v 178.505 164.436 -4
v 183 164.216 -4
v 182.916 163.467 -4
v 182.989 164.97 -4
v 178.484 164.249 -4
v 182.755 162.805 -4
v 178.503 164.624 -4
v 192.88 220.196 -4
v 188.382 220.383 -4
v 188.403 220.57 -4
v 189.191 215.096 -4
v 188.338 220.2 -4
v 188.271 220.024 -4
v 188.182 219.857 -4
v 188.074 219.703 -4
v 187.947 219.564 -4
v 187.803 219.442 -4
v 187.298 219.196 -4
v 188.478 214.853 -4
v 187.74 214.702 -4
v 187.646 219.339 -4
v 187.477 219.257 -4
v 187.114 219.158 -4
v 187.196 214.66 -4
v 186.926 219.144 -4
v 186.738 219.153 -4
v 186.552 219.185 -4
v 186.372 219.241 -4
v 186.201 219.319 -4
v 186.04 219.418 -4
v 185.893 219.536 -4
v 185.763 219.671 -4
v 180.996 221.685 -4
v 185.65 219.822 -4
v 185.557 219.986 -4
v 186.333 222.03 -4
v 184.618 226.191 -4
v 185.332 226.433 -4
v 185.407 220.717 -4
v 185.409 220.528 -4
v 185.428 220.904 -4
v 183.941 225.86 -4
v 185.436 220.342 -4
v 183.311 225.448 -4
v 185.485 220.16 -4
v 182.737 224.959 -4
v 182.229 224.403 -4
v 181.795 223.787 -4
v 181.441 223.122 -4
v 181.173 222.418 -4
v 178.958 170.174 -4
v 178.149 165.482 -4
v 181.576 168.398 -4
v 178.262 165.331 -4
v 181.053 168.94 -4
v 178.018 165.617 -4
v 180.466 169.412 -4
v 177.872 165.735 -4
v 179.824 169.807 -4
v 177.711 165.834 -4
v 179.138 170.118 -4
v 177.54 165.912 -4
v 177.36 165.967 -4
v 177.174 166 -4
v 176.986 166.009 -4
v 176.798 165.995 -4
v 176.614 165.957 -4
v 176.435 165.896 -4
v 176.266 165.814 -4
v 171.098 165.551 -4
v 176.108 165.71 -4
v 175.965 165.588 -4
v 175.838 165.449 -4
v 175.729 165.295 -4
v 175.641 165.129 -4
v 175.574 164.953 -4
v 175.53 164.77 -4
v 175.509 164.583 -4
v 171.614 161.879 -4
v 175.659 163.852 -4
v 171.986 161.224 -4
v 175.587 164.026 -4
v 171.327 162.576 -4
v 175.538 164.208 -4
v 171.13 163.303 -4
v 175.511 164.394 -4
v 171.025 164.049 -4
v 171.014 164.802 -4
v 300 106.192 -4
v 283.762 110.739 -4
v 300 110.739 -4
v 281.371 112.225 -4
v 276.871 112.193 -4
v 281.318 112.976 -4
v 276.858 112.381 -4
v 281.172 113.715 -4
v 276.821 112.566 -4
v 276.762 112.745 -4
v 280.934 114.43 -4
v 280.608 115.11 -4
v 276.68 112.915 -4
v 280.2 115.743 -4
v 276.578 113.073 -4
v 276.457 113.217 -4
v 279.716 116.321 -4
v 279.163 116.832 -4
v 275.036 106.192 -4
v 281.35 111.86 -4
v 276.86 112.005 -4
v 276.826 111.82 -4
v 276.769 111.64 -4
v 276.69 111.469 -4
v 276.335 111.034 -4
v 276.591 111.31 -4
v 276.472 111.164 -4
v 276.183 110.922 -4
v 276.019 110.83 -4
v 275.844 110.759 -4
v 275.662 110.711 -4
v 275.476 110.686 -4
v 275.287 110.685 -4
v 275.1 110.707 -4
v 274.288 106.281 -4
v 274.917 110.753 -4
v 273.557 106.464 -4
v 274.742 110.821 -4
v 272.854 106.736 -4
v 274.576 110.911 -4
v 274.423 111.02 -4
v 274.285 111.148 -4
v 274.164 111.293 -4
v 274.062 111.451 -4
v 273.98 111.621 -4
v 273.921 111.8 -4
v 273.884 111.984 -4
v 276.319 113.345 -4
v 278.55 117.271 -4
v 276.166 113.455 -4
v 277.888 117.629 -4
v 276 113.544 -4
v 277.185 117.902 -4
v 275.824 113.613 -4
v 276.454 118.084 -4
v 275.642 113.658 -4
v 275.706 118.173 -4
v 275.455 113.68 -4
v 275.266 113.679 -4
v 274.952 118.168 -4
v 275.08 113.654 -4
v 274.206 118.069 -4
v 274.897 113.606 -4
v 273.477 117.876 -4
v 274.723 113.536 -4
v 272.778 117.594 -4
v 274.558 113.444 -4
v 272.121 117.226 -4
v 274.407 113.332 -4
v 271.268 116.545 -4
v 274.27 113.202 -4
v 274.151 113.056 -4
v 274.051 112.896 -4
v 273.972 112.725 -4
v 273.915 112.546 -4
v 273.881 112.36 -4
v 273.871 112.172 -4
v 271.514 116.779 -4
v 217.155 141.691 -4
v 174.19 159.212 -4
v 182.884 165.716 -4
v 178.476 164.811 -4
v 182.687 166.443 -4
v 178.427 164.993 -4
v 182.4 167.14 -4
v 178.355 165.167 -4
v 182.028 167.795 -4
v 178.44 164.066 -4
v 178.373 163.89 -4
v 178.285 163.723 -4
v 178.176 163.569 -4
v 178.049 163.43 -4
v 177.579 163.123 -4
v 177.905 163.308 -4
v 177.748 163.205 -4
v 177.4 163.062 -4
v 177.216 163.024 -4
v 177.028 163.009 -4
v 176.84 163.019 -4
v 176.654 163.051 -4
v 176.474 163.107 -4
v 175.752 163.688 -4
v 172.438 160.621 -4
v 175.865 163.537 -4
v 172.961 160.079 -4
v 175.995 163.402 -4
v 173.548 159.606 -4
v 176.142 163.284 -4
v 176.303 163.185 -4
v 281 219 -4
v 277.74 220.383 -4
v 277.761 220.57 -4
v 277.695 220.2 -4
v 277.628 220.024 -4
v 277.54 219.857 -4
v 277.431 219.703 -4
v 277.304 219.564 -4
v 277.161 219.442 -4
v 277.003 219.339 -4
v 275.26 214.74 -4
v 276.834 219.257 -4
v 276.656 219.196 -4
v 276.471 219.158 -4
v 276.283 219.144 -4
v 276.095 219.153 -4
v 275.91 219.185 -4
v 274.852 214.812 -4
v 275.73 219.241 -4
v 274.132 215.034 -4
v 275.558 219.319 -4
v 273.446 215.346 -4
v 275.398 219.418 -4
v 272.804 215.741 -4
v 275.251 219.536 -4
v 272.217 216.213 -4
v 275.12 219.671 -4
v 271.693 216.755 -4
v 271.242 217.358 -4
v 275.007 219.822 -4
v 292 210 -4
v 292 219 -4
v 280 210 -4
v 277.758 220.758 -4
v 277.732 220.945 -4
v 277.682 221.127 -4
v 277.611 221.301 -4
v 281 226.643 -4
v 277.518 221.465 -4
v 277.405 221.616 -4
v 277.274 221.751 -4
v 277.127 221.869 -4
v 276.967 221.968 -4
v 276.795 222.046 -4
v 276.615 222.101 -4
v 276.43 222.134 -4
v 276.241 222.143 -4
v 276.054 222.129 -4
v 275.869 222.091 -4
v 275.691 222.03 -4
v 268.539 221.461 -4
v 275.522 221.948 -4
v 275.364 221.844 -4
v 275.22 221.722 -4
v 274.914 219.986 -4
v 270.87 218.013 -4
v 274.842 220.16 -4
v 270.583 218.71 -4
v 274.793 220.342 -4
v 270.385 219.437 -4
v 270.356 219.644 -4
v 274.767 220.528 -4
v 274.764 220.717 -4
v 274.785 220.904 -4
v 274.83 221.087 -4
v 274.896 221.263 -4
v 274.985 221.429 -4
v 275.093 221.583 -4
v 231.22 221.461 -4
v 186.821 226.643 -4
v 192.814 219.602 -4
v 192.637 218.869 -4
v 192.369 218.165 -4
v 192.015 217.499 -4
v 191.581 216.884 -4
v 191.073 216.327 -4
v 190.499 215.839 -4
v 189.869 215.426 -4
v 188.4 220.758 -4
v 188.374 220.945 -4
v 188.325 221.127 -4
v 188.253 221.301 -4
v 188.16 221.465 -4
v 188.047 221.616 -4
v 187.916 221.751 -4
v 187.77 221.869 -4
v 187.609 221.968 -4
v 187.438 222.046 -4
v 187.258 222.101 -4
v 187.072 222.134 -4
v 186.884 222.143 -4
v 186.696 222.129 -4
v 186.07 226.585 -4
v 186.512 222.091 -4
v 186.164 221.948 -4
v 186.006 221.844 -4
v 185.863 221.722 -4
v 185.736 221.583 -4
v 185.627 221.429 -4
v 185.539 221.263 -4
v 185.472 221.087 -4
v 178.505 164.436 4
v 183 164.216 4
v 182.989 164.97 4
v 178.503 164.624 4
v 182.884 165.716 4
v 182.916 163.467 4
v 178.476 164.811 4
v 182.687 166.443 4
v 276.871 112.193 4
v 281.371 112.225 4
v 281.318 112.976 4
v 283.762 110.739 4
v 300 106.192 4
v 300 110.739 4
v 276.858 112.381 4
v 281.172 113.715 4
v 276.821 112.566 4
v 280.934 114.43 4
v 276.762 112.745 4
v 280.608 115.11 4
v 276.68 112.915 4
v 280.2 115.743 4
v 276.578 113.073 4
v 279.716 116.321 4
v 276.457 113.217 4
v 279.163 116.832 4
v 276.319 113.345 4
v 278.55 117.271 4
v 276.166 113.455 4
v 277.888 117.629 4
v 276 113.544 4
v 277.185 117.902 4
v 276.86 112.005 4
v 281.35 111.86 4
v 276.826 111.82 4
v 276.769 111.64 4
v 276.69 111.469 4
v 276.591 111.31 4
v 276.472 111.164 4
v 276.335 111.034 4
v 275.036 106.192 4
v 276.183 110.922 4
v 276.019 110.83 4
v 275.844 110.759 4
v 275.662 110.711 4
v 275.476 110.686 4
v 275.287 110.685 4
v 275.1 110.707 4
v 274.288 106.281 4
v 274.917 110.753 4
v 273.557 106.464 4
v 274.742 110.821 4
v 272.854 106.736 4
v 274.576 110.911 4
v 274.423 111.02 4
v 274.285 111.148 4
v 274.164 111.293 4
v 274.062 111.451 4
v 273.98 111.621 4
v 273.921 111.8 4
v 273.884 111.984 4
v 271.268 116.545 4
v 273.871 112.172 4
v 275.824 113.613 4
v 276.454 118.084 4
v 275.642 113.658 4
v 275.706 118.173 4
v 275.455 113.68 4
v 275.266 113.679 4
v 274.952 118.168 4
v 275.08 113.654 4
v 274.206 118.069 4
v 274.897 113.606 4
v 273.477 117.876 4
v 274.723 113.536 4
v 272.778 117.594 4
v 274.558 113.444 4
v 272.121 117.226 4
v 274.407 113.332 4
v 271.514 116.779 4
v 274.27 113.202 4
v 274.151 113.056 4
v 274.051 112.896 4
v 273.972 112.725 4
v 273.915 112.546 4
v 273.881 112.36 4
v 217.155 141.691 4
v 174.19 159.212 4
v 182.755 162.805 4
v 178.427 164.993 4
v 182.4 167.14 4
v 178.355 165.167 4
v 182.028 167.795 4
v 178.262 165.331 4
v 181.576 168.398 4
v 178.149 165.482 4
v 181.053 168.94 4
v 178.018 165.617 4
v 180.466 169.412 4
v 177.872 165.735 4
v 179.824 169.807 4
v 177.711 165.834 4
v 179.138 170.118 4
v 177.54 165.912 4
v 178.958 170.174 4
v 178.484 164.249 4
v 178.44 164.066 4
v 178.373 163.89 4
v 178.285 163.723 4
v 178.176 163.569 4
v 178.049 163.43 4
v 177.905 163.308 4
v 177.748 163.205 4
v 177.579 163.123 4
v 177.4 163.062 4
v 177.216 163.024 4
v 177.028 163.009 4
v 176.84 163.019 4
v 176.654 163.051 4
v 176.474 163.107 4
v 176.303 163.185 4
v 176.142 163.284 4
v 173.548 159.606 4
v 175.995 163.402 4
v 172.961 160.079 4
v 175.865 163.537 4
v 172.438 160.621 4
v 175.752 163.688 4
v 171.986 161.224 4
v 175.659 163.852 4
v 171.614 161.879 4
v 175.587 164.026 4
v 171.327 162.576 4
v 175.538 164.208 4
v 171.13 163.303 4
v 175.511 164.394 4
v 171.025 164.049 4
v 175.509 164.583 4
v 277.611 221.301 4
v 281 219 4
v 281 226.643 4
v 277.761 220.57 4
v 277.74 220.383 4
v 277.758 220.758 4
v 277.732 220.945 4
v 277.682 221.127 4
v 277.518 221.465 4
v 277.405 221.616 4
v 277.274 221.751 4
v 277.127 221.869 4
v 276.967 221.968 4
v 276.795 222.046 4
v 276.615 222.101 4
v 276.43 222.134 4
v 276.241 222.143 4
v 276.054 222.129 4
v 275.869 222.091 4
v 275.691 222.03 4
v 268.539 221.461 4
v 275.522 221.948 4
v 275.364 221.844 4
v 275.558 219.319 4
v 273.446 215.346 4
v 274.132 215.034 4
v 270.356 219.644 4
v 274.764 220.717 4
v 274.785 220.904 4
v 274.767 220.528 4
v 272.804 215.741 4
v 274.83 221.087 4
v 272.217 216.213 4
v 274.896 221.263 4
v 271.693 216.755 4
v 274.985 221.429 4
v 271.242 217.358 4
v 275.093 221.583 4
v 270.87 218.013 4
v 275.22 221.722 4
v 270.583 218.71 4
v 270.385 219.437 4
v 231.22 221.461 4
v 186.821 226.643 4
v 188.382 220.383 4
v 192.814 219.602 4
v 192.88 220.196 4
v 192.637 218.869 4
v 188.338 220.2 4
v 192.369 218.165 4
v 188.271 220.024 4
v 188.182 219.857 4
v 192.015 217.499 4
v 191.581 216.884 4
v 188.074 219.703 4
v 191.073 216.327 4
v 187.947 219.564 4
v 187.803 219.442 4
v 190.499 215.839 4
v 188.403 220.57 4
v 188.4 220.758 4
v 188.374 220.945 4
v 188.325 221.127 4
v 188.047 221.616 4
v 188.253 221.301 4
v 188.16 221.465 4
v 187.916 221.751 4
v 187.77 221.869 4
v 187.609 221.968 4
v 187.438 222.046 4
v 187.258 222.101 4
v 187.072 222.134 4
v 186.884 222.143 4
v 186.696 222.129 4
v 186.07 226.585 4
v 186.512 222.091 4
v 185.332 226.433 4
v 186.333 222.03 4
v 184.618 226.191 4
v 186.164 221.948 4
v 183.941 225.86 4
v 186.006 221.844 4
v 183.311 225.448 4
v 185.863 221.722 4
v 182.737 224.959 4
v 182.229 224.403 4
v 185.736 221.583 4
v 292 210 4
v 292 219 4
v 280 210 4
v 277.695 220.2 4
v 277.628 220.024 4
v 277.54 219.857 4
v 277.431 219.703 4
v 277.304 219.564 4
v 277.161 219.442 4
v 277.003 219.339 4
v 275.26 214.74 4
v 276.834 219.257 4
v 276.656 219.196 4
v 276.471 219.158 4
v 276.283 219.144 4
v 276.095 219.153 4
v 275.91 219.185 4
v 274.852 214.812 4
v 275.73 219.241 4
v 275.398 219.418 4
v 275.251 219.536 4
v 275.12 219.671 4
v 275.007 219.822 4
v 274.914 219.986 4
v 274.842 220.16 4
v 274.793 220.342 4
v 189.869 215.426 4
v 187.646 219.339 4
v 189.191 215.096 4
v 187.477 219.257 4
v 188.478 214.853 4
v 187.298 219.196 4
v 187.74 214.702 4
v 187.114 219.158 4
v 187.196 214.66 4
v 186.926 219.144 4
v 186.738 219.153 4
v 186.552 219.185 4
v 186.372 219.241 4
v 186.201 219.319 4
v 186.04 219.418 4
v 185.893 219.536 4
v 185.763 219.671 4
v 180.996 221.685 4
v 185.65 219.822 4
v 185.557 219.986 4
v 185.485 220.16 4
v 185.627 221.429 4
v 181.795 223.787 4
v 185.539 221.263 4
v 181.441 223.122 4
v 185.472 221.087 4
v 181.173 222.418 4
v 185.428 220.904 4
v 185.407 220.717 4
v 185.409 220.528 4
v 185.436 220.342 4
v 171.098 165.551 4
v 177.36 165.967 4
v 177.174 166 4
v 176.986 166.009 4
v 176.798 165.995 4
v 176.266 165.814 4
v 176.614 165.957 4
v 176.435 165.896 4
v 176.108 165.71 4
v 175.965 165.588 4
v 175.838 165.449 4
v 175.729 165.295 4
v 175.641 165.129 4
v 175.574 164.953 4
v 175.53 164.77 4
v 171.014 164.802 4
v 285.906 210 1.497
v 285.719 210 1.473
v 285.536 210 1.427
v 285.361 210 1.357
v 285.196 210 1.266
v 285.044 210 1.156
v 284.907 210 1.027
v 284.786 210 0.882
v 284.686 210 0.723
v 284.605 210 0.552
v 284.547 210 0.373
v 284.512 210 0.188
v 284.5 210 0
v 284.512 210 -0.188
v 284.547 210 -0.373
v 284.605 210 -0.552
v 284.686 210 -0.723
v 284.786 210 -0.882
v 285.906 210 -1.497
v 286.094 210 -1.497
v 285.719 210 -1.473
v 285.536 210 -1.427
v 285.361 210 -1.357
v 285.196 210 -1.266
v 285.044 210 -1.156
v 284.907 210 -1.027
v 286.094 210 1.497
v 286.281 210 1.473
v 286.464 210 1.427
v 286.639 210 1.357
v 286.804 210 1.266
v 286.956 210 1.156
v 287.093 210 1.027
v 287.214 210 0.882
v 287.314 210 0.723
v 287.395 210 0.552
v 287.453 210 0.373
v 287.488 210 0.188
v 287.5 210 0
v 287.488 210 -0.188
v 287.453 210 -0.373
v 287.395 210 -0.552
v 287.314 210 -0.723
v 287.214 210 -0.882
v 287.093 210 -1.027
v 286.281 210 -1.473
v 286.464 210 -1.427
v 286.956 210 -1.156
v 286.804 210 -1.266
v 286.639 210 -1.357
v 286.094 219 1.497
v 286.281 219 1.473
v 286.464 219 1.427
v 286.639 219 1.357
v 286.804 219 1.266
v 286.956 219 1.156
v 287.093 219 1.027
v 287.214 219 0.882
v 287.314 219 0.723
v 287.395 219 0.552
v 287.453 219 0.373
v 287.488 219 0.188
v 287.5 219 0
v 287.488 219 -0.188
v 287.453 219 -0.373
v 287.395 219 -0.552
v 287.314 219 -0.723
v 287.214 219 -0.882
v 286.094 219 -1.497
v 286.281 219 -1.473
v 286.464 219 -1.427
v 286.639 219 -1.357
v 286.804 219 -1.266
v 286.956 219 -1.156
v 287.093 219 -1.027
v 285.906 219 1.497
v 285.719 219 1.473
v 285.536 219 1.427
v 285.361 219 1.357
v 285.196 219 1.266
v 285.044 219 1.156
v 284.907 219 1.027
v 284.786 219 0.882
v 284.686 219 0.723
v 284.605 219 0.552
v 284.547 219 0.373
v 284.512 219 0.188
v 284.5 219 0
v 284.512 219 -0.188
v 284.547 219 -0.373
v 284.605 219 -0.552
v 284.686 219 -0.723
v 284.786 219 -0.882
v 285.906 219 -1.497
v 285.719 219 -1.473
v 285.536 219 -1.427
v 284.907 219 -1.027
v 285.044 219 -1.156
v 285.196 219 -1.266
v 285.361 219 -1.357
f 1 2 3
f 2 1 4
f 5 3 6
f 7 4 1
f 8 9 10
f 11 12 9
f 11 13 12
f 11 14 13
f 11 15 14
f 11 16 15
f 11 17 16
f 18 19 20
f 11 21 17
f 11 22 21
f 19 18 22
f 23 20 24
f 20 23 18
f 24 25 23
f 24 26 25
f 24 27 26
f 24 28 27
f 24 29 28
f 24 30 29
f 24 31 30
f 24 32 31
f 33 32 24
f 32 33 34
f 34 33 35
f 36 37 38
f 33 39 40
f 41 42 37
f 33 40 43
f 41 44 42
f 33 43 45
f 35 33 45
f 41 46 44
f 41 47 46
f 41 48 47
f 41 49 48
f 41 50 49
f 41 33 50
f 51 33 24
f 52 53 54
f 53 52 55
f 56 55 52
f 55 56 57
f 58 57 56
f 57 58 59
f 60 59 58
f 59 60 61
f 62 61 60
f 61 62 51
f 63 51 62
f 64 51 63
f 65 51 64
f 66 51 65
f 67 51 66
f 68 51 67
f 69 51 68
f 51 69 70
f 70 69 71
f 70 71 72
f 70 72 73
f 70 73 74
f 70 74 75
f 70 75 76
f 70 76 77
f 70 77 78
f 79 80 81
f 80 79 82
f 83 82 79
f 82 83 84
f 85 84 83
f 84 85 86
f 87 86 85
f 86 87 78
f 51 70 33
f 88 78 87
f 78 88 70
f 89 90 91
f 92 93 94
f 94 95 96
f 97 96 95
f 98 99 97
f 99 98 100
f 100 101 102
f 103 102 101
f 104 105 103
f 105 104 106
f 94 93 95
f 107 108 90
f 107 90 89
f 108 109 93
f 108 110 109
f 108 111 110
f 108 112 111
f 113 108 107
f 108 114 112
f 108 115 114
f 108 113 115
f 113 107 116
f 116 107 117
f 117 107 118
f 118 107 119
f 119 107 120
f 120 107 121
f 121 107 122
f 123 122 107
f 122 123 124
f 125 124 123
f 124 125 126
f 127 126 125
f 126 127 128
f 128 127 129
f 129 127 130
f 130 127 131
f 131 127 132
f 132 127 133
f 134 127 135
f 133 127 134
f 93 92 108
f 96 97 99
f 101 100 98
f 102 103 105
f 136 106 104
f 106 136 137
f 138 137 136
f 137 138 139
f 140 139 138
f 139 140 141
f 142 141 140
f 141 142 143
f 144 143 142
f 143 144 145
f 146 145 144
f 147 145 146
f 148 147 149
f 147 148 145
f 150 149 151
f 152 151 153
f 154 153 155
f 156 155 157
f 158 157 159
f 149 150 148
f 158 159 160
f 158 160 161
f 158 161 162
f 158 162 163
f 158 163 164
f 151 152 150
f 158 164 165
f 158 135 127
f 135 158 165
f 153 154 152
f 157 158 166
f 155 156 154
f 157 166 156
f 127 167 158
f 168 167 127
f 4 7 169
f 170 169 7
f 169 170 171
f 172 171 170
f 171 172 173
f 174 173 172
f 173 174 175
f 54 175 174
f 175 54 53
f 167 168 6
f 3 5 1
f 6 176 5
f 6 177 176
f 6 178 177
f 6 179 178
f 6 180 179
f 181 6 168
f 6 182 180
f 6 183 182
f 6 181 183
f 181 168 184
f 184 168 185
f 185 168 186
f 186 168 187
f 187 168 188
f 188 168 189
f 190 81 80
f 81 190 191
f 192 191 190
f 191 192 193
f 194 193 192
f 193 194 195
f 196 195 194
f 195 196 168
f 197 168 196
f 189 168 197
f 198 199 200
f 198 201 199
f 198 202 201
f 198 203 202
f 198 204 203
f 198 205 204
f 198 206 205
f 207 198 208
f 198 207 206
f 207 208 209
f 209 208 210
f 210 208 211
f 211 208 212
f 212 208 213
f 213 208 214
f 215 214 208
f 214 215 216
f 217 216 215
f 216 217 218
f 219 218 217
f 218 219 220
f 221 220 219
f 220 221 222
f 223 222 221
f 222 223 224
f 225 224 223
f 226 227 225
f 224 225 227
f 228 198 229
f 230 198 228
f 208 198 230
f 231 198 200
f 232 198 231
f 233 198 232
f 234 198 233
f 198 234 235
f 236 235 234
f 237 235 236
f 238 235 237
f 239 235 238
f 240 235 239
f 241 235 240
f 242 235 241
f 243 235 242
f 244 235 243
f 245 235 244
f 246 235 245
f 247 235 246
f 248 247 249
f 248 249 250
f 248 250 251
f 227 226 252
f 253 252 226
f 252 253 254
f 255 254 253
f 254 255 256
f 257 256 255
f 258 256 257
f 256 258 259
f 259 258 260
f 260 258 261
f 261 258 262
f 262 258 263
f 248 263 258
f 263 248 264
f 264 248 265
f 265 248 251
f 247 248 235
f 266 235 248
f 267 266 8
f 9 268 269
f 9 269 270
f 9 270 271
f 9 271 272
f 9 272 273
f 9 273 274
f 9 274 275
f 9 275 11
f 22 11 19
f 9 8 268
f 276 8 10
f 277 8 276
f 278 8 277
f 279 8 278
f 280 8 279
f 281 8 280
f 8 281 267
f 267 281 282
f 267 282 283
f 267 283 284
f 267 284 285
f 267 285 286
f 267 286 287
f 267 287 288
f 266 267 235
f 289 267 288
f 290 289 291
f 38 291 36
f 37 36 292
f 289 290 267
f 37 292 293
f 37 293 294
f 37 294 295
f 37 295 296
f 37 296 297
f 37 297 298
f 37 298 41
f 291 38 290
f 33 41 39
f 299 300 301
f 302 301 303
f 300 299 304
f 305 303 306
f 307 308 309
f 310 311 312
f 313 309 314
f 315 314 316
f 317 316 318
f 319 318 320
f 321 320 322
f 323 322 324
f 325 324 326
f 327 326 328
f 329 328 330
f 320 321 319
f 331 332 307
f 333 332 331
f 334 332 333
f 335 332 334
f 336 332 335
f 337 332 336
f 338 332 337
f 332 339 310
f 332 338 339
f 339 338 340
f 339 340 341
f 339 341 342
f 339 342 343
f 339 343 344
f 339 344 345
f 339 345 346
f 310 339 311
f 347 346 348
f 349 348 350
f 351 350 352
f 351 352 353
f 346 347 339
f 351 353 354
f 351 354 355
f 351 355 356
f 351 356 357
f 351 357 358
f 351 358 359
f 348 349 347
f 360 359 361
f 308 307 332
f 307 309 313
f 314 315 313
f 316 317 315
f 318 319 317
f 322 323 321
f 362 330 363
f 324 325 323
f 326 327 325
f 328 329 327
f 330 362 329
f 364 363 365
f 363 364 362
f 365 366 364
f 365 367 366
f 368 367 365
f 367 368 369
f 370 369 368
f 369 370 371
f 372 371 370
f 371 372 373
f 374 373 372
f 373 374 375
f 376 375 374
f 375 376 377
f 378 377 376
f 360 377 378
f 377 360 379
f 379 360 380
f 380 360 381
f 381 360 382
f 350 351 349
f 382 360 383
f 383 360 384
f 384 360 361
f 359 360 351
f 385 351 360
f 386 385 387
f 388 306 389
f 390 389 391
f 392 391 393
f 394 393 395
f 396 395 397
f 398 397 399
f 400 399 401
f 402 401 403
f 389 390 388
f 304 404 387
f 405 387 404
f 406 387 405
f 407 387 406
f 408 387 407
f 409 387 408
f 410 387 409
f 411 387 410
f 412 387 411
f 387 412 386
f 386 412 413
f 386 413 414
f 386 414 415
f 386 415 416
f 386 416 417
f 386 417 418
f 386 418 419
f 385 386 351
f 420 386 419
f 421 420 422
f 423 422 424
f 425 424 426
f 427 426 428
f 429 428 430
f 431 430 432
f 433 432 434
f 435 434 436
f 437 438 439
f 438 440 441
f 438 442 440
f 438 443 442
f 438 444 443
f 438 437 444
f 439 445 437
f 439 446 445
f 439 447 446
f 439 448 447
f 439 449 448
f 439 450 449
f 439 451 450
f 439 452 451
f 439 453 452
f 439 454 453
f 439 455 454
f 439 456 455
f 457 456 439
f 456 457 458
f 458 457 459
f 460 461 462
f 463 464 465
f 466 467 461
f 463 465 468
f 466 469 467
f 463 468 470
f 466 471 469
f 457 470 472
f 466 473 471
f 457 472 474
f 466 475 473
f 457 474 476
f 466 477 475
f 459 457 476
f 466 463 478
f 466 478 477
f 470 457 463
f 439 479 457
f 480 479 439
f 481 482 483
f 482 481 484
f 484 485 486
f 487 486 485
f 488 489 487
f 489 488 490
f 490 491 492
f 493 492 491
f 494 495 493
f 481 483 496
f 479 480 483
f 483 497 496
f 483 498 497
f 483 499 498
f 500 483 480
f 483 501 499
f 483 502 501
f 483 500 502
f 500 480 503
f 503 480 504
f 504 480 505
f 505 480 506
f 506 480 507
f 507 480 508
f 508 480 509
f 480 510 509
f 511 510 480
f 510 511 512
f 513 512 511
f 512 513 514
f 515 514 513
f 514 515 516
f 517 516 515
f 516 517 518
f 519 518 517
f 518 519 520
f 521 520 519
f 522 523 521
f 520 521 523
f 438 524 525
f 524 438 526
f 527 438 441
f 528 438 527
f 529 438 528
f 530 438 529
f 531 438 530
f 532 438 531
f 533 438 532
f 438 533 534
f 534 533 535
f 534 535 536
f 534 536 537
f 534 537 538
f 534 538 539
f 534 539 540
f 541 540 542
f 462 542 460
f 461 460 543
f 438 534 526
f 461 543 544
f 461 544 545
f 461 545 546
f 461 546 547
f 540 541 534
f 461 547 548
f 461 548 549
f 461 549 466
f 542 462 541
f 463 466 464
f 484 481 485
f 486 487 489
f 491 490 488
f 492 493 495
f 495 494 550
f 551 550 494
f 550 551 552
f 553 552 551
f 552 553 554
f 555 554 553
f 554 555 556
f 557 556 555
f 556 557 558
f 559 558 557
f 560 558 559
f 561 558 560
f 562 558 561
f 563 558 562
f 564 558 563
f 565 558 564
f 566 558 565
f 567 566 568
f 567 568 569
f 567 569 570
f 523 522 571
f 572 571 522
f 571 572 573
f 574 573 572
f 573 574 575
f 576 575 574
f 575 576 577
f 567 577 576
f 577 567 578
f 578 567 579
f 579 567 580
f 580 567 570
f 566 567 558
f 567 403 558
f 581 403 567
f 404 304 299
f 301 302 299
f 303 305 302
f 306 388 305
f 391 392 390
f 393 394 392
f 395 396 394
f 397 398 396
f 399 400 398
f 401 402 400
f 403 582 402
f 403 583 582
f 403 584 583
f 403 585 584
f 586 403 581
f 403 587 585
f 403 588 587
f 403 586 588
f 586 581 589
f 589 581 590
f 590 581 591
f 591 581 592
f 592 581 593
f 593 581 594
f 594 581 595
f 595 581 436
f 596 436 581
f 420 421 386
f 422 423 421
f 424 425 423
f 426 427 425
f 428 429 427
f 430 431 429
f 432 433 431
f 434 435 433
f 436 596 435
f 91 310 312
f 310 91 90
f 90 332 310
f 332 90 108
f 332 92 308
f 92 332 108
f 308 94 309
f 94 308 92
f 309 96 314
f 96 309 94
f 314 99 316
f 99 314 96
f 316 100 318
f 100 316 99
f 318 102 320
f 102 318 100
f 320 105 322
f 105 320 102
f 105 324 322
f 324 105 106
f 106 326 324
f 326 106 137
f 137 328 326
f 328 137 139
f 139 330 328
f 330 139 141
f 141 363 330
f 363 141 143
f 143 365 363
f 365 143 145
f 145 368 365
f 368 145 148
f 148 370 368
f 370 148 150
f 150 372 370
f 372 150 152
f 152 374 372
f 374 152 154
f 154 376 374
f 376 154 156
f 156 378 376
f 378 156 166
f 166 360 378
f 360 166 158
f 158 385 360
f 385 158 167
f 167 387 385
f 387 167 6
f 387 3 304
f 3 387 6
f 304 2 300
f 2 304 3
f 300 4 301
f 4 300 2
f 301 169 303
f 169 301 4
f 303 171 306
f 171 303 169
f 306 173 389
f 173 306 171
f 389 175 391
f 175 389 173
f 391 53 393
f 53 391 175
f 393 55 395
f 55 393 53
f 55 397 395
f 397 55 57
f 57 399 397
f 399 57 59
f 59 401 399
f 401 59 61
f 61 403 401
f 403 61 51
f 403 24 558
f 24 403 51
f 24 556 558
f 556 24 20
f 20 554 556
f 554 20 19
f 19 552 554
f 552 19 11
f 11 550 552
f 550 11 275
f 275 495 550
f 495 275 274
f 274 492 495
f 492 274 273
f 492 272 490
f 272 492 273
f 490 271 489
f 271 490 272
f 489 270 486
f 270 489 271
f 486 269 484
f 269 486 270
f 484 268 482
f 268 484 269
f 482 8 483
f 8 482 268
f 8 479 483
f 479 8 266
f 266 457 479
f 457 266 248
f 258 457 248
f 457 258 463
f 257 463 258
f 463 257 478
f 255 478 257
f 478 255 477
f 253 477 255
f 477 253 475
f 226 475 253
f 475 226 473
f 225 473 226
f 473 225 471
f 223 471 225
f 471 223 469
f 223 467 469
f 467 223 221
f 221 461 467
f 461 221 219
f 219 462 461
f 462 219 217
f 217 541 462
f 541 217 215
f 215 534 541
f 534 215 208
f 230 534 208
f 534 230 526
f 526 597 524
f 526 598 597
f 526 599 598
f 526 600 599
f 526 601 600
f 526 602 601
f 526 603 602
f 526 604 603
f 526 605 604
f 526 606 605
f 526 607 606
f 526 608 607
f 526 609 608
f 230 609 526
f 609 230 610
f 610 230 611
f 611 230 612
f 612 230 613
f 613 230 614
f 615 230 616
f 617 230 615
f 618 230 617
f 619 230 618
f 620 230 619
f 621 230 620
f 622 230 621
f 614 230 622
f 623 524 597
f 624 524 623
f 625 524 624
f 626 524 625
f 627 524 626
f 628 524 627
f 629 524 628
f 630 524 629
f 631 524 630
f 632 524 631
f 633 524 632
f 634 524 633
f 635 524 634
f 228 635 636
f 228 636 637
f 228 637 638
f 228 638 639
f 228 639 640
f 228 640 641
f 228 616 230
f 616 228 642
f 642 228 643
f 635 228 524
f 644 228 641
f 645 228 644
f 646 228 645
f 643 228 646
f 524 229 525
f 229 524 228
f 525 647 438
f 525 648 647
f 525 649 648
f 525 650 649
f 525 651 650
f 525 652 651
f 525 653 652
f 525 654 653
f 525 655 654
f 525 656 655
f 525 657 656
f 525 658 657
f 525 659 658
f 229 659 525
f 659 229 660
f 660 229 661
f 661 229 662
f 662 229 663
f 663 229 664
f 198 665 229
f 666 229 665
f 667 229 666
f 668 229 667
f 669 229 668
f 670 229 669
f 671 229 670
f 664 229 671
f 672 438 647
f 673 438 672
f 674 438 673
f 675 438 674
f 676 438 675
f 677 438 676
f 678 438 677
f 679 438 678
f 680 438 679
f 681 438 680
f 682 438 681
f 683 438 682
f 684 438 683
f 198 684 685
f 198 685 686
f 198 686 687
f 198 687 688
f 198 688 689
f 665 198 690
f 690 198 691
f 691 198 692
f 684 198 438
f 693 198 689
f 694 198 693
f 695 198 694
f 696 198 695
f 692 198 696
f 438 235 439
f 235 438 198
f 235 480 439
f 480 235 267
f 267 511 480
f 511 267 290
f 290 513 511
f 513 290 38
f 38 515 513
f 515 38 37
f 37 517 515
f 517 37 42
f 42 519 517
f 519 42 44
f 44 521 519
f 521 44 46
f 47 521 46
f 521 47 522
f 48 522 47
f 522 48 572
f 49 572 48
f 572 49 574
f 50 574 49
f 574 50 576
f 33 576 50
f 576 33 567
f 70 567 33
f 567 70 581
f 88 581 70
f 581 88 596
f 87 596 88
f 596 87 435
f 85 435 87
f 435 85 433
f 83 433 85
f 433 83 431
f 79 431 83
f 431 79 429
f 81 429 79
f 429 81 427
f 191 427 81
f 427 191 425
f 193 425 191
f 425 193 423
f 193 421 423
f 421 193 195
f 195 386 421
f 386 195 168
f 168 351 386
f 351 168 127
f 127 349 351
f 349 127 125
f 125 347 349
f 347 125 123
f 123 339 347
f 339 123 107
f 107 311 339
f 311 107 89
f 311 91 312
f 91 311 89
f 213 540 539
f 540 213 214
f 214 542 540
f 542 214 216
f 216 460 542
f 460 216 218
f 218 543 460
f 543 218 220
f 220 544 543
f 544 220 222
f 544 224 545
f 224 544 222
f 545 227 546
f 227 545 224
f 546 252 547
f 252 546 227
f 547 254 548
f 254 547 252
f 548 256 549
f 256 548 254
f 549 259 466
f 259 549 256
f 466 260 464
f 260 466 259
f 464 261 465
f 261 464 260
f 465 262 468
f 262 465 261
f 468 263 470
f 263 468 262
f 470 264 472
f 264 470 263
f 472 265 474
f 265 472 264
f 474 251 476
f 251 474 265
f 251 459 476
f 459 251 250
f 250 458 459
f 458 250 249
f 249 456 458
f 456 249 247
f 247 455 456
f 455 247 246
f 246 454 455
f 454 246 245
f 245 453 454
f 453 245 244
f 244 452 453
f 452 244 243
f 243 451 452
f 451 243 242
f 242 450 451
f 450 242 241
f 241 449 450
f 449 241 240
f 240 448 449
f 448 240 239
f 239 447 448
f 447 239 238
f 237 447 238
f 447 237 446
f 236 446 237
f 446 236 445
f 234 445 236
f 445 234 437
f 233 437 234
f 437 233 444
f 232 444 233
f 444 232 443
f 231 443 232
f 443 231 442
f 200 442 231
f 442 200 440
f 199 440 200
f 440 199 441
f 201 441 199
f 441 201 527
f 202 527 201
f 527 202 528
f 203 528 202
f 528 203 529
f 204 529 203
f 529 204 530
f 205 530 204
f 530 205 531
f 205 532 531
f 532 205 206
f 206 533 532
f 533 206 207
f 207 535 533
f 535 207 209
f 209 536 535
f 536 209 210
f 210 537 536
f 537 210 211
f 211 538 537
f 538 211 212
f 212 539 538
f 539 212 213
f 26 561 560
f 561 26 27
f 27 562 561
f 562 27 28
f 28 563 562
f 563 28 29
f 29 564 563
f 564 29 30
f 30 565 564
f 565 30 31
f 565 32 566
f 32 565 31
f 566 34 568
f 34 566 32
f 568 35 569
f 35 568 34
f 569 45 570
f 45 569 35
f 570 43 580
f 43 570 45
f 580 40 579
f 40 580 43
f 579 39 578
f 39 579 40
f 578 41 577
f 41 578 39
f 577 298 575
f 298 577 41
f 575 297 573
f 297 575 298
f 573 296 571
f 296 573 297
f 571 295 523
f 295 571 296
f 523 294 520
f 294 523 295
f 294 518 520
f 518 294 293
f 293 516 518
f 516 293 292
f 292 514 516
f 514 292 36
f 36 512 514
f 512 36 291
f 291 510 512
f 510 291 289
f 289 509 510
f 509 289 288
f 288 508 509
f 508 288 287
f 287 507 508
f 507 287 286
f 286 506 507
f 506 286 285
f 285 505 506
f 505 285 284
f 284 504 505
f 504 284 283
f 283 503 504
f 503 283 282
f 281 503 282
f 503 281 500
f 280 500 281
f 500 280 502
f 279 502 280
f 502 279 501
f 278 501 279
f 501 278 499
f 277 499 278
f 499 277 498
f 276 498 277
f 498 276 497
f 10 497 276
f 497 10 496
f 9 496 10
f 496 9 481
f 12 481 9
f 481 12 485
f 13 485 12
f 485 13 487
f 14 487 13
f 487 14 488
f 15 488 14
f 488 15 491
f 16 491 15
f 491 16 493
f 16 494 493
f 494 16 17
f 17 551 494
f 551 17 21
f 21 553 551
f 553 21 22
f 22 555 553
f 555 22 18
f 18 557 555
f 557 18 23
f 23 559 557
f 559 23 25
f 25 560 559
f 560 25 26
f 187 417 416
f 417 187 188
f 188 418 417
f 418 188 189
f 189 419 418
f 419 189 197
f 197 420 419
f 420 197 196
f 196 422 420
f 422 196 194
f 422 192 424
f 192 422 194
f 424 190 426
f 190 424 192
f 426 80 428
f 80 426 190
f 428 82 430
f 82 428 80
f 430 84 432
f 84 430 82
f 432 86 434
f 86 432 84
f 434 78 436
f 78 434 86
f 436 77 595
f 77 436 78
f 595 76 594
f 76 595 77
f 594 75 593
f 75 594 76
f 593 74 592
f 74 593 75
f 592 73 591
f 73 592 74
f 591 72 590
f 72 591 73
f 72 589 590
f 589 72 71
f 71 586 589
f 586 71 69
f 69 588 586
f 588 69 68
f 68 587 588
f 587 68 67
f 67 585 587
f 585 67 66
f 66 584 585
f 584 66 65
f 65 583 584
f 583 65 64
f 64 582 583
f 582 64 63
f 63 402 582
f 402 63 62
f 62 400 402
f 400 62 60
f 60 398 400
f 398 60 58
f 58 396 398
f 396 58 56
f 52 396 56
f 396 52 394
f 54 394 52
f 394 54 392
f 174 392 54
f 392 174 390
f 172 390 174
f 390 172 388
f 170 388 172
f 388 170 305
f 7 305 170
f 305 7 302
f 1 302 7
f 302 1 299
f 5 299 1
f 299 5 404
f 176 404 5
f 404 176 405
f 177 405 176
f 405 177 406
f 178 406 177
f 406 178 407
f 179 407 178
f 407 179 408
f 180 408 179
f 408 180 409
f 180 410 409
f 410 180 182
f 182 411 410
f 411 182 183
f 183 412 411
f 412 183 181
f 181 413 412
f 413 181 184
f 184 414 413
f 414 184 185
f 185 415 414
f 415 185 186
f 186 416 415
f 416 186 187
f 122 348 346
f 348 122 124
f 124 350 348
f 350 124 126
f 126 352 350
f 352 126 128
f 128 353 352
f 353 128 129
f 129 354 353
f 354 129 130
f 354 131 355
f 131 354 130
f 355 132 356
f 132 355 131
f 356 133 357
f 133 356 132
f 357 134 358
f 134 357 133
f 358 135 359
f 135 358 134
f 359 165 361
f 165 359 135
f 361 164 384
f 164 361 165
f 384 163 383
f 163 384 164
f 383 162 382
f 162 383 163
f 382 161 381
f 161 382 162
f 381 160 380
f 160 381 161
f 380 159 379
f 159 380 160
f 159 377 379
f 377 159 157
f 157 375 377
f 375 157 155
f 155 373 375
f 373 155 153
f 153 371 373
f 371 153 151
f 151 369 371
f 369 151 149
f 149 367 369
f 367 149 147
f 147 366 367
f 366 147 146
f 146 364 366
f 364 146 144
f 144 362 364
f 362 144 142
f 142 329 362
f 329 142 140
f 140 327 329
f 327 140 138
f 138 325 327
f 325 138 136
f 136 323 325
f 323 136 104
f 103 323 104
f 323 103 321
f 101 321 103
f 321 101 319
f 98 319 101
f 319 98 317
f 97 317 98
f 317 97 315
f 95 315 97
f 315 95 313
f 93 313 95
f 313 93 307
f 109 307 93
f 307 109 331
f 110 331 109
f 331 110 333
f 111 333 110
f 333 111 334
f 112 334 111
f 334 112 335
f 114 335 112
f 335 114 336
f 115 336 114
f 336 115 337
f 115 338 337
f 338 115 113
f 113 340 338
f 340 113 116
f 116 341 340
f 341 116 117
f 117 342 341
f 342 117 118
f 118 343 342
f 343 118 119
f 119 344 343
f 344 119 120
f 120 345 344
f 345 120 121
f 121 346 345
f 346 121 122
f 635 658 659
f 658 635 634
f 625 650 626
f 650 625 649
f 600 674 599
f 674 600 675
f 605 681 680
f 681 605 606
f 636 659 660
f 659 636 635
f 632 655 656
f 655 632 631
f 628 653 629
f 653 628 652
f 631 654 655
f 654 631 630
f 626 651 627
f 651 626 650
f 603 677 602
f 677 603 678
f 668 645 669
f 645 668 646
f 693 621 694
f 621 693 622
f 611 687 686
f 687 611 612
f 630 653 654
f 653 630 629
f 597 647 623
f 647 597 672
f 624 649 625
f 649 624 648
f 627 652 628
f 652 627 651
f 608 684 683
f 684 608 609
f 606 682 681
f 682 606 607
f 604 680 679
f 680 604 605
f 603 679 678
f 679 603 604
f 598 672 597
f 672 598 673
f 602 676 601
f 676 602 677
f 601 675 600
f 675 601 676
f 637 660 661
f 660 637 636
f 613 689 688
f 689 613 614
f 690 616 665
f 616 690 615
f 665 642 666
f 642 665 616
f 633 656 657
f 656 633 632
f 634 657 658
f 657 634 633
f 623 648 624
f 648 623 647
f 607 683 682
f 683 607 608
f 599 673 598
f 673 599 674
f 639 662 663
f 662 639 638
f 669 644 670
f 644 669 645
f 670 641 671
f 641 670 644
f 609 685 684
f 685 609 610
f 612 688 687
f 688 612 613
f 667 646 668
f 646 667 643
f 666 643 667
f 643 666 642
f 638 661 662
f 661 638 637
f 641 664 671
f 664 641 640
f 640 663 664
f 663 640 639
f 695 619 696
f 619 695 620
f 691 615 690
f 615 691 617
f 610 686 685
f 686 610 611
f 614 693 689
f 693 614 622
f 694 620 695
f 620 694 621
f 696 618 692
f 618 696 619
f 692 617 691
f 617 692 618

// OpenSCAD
// -*- mode: c -*-
/* All distances are in mm. */

$fn = 50;
simple = false;
angle = 10;
thumb_angle = simple ? 0 : 20;
hole_radius = 1.5;
washer_radius = 4 * hole_radius;
hand_distance = 8;
spacing = 19;
space_size = spacing + 1;
switch_size = 13.97;
key_size = 17;
rows = 4;
cols = 6;
row_offsets = [0, 0, 0, 4, 0, -4];

module rz(angle, center=undef) translate(center) rotate(angle) translate(-center) children();
module mirrored() { children(); mirror ([1,0,0]) { children(); } }
module key(pos, size) translate(pos) square([size, size], center=true);
module hole(pos, size) translate(pos) circle(size);
module add_hand_distance() translate([0.5 * hand_distance, 0]) children();
module rotate_half() add_hand_distance() rz(angle, [hand_distance, spacing]) children();
module plate_top() difference() { plate_bottom(); keys(space_size, false); }
module plate_bottom() difference() { hull() { holes(washer_radius); } holes(hole_radius); }
module plate_switch() difference() { plate_bottom(); keys(switch_size, true); }

module keys(size, switches) mirrored() rotate_half() {
  o = spacing*0.5;
  for (c=[1:(cols-1)]) for(r=[1:(rows-1)]) key([c*spacing + o, r*spacing + row_offsets[c] + o], size);
  //for (c=[(switches ? 2 :1):(cols-2)]) key([c*spacing + o, row_offsets[c] + o], size);
  for (c=[(switches ? 2 :1):(cols-3)]) key([c*spacing + o, o], size); 
  rz(thumb_angle, [2*spacing, 0]) {
    key([spacing + o, o + (simple ? row_offsets[1] : 0)], size);
    rz(thumb_angle, [spacing, 0]) {
      key([o, o], size);
      if (!switches && !simple) key([spacing + o, o], size);
    }
  }
}

module holes(radius) mirrored() {
  //translate([0, 30]) square([15, 30], center=true);
  o = 6;
  top_corner = [cols * spacing + o, rows*spacing + row_offsets[cols-1]];
  rotate_half() {
    hole(top_corner, radius);
    hole([cols * spacing + o, spacing + row_offsets[cols-1] - (simple ? spacing : 0)], radius);
    rz(thumb_angle, [2*spacing, 0]) rz(thumb_angle, [spacing, 0]) hole([o, row_offsets[0] - o], radius);
  }
  translate([(-spacing*4 - o*2) / cos(angle), 0]) rotate_half() hole(top_corner, radius);
}

module plate_middle() difference() {
  linear_extrude(height=8, center=true, convexity=10, twist=0) difference() {
    union() {
      difference() {
        plate_bottom();
        hull() keys(key_size+3, false);
        polygon([[0, 85],[-112,89],[-122,35],[0,0]]);
        //hull() translate([-6,0]) keys(key_size, false);
      }
      holes(washer_radius);
      translate([0, 85]) polygon([[-20, -5],[20,-5],[32,7],[-32,7]]);
    }
    holes(hole_radius);
    translate([0, 93]) square([38, 8], center=true);
    translate([0, 93]) square([16, 30], center=true);
    translate([0, -50]) square([200, 200], center=false);
  }
  translate([-14, 95]) rotate([90,0,0]) cylinder(r=1.5,h=30);
}

//plate_switch();
//plate_bottom();
//translate([0, 130]) plate_bottom();
translate([300, 130]) plate_middle();
//translate([300, 0]) plate_top();
